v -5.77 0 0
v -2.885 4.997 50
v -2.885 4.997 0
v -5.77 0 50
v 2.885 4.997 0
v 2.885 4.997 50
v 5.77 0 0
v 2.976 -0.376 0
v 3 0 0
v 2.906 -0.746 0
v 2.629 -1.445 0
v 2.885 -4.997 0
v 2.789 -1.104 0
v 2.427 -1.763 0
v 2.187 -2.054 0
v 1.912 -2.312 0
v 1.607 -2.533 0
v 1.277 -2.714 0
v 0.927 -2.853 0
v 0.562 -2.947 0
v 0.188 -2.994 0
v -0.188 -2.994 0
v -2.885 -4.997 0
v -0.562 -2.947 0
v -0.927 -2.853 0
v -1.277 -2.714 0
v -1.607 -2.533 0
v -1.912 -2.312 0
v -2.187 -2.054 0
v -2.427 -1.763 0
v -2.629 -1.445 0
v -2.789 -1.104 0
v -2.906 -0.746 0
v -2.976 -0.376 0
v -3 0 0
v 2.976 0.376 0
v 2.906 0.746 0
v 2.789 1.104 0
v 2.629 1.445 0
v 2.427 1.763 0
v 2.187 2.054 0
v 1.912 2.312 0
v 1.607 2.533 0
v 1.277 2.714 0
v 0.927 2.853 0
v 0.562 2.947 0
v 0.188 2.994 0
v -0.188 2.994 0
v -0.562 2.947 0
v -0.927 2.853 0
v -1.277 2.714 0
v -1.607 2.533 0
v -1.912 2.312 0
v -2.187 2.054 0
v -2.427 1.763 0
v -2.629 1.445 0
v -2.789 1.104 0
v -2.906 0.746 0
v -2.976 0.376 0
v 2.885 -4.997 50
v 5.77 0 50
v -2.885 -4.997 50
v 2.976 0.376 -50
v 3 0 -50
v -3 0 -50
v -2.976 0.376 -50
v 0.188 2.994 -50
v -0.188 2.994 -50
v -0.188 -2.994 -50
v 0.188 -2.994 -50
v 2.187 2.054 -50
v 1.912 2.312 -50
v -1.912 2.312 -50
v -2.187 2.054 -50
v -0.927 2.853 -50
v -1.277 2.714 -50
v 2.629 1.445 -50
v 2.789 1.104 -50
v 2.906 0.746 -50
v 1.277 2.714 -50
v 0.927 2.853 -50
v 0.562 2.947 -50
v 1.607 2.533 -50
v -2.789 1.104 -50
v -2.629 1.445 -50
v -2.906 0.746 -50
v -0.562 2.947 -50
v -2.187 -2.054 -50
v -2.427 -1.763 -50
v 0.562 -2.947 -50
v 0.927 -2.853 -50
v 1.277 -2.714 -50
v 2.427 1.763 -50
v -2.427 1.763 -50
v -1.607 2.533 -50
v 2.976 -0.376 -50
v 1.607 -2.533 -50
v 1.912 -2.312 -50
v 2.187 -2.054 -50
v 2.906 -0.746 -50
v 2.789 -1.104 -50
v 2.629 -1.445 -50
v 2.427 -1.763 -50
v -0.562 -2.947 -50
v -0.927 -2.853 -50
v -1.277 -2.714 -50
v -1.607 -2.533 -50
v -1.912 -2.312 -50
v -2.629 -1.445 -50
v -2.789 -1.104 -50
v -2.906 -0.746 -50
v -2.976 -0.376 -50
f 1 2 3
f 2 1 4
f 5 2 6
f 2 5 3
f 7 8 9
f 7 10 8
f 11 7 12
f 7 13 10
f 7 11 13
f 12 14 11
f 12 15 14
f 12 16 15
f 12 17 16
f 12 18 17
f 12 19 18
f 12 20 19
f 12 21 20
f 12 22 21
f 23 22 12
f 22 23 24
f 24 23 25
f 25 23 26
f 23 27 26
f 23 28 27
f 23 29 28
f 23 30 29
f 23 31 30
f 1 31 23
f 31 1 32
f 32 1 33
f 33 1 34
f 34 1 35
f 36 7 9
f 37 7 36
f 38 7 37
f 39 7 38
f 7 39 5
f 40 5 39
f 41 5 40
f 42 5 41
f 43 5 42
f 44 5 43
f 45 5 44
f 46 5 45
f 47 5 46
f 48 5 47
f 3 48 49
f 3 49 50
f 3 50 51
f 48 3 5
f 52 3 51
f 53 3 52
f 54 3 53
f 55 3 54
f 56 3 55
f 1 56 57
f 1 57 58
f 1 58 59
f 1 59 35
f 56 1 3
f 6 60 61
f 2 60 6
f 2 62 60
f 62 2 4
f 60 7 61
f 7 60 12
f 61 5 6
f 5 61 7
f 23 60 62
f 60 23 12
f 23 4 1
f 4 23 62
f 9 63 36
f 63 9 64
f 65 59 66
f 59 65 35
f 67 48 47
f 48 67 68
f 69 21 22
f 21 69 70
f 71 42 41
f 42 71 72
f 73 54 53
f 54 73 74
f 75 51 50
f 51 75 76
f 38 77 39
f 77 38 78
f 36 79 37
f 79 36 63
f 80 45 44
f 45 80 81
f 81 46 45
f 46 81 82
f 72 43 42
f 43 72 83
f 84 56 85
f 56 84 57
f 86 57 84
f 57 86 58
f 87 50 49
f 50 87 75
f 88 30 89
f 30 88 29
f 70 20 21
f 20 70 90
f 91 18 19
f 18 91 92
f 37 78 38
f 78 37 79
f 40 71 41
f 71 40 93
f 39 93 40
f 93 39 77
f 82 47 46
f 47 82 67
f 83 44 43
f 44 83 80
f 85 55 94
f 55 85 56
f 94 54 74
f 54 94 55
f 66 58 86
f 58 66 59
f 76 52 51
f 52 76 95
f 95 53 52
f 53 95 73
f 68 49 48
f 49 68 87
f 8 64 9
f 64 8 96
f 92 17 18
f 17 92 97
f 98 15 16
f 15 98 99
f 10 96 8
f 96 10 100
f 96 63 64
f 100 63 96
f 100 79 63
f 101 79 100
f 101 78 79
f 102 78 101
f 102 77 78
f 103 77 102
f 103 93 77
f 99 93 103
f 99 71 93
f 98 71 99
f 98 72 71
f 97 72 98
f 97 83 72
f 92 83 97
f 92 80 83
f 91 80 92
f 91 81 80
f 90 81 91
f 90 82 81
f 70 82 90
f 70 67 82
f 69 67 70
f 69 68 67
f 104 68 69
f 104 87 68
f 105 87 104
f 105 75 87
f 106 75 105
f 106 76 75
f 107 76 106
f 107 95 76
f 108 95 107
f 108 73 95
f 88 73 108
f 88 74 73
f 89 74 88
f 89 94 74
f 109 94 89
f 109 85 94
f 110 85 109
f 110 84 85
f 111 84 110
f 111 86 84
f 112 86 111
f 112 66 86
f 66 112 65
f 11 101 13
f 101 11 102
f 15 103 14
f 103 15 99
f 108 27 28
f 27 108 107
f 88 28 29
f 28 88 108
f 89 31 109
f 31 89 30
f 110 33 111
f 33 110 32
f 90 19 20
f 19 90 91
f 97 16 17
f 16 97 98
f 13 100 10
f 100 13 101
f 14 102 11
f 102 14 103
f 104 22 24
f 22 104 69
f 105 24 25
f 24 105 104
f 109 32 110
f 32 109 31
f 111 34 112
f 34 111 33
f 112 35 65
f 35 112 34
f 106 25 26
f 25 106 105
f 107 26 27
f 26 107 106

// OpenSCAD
$fn = 50;


difference() {
	union() {
		linear_extrude(height = 50) {
			polygon(points = [[5.7700000000, 0.0000000000], [2.8850000000, 4.9969665798], [-2.8850000000, 4.9969665798], [-5.7700000000, 0.0000000000], [-2.8850000000, -4.9969665798], [2.8850000000, -4.9969665798]]);
		}
		translate(v = [0, 0, -50]) {
			cylinder(h = 50, r = 3.0000000000);
		}
	}
	union();
}
